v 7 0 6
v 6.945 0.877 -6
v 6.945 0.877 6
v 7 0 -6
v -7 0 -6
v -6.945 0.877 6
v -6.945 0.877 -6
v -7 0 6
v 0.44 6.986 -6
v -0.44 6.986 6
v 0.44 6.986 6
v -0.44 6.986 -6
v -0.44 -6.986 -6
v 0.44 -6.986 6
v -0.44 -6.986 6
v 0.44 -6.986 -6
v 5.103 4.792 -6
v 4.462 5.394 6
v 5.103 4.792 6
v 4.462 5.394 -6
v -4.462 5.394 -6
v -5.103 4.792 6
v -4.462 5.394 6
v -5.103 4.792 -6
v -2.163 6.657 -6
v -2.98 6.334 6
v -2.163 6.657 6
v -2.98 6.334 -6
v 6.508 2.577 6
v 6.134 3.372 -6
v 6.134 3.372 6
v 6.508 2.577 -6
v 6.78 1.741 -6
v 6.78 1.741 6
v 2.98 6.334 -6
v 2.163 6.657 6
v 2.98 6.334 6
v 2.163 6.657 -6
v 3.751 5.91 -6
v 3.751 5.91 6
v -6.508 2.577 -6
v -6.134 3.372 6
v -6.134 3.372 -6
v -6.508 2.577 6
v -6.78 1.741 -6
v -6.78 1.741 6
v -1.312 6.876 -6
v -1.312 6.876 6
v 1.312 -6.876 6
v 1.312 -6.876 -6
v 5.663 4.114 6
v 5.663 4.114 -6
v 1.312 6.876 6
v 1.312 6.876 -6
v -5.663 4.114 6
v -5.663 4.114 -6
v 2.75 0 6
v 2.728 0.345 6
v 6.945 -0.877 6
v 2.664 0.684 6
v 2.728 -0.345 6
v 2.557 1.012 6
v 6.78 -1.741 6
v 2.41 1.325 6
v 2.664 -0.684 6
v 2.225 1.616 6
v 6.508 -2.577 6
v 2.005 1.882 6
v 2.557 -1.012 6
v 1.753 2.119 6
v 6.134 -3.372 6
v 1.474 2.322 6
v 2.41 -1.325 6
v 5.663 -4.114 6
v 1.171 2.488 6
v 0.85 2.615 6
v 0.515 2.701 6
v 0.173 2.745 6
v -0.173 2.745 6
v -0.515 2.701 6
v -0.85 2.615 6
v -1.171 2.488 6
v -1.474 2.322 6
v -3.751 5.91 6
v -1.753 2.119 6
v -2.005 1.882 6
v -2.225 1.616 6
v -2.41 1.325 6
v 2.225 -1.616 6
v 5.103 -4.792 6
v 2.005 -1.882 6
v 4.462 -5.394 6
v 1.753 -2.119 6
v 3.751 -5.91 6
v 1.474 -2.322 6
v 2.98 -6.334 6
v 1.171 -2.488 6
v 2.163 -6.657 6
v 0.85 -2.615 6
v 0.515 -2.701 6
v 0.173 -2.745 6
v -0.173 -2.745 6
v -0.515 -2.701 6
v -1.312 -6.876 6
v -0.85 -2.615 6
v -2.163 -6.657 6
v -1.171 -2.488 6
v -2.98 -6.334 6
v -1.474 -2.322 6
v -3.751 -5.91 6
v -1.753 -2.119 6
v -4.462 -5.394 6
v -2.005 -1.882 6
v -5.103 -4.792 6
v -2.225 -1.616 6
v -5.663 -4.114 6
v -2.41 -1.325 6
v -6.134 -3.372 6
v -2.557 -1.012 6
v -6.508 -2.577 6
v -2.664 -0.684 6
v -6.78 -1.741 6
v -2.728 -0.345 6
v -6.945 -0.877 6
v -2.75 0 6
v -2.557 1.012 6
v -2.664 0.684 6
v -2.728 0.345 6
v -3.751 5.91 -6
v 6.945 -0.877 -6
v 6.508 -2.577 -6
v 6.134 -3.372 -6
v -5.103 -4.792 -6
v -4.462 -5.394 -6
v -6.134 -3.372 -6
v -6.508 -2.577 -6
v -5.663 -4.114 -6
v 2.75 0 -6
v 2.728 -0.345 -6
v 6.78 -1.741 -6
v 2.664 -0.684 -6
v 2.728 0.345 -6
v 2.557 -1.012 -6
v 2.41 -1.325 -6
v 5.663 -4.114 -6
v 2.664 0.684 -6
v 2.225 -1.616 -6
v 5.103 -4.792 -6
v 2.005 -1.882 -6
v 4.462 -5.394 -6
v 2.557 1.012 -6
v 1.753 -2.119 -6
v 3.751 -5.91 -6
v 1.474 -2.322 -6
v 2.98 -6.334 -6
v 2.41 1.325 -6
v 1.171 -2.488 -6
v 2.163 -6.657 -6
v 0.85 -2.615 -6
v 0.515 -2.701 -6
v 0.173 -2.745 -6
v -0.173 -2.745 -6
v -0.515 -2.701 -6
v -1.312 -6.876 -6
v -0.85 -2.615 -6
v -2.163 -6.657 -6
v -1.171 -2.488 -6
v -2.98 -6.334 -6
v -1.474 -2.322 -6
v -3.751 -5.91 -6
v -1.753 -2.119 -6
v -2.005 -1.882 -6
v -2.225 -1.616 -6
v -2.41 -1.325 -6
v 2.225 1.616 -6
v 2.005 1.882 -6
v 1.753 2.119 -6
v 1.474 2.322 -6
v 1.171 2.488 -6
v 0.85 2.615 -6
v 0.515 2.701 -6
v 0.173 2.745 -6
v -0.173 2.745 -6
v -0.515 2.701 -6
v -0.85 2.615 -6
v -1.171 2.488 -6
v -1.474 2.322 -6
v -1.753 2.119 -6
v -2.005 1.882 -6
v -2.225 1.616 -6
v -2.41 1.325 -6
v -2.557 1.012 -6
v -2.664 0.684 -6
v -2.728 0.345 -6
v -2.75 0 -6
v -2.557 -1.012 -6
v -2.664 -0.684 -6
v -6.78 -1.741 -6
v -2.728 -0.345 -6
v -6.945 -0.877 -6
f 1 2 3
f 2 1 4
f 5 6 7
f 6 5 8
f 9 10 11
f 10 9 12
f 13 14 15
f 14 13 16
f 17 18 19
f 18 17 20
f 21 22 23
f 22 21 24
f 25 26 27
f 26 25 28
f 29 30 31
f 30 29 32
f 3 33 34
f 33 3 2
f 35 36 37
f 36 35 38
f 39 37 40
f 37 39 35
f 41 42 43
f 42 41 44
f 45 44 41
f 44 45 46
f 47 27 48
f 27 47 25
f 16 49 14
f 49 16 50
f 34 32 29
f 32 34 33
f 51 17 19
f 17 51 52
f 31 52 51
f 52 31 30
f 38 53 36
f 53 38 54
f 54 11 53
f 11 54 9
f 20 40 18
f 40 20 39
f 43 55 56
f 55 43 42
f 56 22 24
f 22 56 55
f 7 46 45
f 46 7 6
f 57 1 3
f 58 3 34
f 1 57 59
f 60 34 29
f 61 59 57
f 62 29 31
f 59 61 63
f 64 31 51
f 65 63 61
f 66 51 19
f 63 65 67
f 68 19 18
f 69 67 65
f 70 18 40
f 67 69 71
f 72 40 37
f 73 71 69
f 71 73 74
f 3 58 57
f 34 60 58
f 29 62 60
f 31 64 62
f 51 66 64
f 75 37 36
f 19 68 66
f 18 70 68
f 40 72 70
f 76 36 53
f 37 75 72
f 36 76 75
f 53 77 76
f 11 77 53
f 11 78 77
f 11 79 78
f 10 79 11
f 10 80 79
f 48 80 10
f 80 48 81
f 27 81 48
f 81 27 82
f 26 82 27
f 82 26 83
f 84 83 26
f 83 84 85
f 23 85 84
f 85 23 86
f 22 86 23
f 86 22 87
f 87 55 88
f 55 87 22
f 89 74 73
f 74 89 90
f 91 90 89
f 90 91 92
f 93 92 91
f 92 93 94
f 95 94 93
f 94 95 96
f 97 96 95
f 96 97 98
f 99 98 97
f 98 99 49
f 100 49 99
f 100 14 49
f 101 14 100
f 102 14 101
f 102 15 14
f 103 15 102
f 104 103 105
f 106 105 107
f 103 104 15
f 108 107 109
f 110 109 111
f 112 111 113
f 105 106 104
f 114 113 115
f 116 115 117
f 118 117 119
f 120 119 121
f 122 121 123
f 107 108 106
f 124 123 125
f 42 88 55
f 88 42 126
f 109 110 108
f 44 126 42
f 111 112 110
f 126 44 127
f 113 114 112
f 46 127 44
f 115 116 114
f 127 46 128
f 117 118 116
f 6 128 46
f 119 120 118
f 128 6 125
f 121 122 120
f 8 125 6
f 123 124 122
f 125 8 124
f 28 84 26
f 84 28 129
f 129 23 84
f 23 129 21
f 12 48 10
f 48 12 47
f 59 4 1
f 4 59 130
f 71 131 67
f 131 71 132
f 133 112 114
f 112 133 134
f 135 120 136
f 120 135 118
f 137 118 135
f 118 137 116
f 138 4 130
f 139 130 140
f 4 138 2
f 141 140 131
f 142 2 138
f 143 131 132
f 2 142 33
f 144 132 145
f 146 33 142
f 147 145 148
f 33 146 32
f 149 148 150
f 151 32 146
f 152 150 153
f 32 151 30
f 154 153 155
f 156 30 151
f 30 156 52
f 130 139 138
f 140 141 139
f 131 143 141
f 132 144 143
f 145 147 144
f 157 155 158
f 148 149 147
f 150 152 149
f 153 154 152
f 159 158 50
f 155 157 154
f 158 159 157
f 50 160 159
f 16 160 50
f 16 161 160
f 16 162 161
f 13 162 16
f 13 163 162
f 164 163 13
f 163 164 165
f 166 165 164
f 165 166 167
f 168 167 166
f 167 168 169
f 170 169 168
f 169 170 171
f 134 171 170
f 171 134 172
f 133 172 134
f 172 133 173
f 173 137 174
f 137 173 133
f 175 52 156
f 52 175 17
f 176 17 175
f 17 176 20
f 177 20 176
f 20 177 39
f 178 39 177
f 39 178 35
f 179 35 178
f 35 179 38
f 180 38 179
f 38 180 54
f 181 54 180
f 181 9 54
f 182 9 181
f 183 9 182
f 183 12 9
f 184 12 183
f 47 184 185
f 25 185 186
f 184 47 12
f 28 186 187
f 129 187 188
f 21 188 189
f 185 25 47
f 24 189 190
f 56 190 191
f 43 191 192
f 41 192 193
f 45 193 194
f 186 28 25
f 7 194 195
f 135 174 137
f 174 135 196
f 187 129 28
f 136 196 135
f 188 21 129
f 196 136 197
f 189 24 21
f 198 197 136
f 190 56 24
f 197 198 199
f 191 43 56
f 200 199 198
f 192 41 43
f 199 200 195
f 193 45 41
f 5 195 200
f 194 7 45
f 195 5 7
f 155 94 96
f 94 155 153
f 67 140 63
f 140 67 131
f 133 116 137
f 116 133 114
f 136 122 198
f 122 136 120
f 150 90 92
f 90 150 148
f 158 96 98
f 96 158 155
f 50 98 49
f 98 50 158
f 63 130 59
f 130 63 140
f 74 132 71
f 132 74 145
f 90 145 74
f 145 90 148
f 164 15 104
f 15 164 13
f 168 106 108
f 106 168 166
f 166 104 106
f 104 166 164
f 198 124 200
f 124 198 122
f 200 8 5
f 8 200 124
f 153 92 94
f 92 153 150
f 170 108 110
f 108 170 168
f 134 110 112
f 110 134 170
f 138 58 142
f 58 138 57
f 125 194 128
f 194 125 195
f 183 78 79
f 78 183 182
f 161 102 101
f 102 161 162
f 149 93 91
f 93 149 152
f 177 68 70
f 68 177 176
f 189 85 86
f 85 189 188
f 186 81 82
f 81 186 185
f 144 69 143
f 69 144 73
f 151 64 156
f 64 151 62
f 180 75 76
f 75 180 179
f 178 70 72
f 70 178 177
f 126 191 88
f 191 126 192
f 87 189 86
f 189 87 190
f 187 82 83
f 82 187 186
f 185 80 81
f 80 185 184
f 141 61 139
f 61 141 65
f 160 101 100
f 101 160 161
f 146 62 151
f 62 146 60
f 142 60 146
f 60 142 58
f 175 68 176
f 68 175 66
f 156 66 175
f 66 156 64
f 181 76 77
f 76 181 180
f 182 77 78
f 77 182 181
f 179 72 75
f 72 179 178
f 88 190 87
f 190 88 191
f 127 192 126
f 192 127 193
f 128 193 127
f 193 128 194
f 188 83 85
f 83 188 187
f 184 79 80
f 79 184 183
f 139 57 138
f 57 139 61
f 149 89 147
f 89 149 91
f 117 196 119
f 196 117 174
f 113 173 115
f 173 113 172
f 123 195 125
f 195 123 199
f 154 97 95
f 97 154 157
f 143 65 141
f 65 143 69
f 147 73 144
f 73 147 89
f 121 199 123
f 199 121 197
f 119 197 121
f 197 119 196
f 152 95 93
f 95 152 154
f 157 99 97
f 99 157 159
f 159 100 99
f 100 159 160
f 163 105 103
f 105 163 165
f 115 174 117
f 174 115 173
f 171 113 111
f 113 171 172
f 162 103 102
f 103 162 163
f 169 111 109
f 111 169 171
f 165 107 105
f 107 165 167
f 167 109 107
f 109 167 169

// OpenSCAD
$fn = 50;


difference() {
	union() {
		translate(v = [0, 0, -6.0000000000]) {
			cylinder(h = 12, r = 7.0000000000);
		}
	}
	union() {
		translate(v = [0, 0, -100.0000000000]) {
			cylinder(h = 200, r = 2.7500000000);
		}
	}
}
